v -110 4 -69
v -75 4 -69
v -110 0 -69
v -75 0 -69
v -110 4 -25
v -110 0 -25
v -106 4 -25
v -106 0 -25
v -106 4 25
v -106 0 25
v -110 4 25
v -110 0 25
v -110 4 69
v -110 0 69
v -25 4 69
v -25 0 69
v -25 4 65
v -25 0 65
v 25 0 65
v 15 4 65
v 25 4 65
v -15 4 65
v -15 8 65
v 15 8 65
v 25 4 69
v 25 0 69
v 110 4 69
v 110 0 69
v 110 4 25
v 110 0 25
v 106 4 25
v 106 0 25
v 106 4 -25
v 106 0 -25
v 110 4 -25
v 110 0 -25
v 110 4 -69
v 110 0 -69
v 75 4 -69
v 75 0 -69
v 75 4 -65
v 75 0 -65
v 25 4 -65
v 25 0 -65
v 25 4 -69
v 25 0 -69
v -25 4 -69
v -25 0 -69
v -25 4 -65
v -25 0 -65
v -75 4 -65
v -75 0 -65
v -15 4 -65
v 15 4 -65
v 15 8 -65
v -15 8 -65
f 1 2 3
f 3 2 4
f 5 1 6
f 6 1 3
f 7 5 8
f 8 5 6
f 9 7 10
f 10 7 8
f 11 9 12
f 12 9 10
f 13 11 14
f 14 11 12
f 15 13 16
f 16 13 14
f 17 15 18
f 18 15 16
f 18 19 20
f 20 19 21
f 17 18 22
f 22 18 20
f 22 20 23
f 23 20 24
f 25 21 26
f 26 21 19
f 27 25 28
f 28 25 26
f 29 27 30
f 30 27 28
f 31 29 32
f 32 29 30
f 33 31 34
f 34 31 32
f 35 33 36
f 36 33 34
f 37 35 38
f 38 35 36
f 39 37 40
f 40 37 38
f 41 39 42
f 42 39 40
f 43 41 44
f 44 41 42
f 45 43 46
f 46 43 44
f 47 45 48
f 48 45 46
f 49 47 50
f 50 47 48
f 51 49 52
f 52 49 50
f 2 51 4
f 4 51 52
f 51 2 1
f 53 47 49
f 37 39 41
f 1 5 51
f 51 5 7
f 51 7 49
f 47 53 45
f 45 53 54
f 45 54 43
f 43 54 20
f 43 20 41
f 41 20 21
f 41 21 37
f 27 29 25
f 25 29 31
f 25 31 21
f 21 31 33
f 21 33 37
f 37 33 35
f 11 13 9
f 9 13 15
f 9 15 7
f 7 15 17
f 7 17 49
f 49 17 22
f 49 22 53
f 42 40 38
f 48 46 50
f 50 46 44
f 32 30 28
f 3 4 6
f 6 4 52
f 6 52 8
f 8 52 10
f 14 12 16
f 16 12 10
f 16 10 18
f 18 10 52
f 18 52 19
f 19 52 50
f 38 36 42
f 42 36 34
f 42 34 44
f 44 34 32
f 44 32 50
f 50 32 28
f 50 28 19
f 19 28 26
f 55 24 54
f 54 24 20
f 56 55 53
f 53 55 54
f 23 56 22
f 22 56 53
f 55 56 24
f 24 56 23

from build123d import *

# Parameters (mm, degrees)
BOSS_EXTRUDE1_DEPTH = 4
SKETCH3_W           = 30
SKETCH3_H           = 130
BOSS_EXTRUDE2_DEPTH = 4


with BuildPart() as part:
    # Sketch2 → Boss-Extrude1 (new body)
    with BuildSketch(Plane(origin=(0, 0, 0), x_dir=(1, 0, 0), z_dir=(0, 1, 0))):
        Polygon((-110, 69), (-110, 25), (-106, 25), (-106, -25), (-110, -25), (-110, -69), (-25, -69), (-25, -65), (25, -65), (25, -69), (110, -69), (110, -25), (106, -25), (106, 25), (110, 25), (110, 69), (75, 69), (75, 65), (25, 65), (25, 69), (-25, 69), (-25, 65), (-75, 65), (-75, 69), align=None)
    extrude(amount=BOSS_EXTRUDE1_DEPTH)

    # Sketch3 → Boss-Extrude2 (add)
    with BuildSketch(Plane(origin=(0, 4, 0), x_dir=(1, 0, 0), z_dir=(0, 1, 0))):
        Rectangle(SKETCH3_W, SKETCH3_H)
    extrude(amount=BOSS_EXTRUDE2_DEPTH)


solid = part.part
